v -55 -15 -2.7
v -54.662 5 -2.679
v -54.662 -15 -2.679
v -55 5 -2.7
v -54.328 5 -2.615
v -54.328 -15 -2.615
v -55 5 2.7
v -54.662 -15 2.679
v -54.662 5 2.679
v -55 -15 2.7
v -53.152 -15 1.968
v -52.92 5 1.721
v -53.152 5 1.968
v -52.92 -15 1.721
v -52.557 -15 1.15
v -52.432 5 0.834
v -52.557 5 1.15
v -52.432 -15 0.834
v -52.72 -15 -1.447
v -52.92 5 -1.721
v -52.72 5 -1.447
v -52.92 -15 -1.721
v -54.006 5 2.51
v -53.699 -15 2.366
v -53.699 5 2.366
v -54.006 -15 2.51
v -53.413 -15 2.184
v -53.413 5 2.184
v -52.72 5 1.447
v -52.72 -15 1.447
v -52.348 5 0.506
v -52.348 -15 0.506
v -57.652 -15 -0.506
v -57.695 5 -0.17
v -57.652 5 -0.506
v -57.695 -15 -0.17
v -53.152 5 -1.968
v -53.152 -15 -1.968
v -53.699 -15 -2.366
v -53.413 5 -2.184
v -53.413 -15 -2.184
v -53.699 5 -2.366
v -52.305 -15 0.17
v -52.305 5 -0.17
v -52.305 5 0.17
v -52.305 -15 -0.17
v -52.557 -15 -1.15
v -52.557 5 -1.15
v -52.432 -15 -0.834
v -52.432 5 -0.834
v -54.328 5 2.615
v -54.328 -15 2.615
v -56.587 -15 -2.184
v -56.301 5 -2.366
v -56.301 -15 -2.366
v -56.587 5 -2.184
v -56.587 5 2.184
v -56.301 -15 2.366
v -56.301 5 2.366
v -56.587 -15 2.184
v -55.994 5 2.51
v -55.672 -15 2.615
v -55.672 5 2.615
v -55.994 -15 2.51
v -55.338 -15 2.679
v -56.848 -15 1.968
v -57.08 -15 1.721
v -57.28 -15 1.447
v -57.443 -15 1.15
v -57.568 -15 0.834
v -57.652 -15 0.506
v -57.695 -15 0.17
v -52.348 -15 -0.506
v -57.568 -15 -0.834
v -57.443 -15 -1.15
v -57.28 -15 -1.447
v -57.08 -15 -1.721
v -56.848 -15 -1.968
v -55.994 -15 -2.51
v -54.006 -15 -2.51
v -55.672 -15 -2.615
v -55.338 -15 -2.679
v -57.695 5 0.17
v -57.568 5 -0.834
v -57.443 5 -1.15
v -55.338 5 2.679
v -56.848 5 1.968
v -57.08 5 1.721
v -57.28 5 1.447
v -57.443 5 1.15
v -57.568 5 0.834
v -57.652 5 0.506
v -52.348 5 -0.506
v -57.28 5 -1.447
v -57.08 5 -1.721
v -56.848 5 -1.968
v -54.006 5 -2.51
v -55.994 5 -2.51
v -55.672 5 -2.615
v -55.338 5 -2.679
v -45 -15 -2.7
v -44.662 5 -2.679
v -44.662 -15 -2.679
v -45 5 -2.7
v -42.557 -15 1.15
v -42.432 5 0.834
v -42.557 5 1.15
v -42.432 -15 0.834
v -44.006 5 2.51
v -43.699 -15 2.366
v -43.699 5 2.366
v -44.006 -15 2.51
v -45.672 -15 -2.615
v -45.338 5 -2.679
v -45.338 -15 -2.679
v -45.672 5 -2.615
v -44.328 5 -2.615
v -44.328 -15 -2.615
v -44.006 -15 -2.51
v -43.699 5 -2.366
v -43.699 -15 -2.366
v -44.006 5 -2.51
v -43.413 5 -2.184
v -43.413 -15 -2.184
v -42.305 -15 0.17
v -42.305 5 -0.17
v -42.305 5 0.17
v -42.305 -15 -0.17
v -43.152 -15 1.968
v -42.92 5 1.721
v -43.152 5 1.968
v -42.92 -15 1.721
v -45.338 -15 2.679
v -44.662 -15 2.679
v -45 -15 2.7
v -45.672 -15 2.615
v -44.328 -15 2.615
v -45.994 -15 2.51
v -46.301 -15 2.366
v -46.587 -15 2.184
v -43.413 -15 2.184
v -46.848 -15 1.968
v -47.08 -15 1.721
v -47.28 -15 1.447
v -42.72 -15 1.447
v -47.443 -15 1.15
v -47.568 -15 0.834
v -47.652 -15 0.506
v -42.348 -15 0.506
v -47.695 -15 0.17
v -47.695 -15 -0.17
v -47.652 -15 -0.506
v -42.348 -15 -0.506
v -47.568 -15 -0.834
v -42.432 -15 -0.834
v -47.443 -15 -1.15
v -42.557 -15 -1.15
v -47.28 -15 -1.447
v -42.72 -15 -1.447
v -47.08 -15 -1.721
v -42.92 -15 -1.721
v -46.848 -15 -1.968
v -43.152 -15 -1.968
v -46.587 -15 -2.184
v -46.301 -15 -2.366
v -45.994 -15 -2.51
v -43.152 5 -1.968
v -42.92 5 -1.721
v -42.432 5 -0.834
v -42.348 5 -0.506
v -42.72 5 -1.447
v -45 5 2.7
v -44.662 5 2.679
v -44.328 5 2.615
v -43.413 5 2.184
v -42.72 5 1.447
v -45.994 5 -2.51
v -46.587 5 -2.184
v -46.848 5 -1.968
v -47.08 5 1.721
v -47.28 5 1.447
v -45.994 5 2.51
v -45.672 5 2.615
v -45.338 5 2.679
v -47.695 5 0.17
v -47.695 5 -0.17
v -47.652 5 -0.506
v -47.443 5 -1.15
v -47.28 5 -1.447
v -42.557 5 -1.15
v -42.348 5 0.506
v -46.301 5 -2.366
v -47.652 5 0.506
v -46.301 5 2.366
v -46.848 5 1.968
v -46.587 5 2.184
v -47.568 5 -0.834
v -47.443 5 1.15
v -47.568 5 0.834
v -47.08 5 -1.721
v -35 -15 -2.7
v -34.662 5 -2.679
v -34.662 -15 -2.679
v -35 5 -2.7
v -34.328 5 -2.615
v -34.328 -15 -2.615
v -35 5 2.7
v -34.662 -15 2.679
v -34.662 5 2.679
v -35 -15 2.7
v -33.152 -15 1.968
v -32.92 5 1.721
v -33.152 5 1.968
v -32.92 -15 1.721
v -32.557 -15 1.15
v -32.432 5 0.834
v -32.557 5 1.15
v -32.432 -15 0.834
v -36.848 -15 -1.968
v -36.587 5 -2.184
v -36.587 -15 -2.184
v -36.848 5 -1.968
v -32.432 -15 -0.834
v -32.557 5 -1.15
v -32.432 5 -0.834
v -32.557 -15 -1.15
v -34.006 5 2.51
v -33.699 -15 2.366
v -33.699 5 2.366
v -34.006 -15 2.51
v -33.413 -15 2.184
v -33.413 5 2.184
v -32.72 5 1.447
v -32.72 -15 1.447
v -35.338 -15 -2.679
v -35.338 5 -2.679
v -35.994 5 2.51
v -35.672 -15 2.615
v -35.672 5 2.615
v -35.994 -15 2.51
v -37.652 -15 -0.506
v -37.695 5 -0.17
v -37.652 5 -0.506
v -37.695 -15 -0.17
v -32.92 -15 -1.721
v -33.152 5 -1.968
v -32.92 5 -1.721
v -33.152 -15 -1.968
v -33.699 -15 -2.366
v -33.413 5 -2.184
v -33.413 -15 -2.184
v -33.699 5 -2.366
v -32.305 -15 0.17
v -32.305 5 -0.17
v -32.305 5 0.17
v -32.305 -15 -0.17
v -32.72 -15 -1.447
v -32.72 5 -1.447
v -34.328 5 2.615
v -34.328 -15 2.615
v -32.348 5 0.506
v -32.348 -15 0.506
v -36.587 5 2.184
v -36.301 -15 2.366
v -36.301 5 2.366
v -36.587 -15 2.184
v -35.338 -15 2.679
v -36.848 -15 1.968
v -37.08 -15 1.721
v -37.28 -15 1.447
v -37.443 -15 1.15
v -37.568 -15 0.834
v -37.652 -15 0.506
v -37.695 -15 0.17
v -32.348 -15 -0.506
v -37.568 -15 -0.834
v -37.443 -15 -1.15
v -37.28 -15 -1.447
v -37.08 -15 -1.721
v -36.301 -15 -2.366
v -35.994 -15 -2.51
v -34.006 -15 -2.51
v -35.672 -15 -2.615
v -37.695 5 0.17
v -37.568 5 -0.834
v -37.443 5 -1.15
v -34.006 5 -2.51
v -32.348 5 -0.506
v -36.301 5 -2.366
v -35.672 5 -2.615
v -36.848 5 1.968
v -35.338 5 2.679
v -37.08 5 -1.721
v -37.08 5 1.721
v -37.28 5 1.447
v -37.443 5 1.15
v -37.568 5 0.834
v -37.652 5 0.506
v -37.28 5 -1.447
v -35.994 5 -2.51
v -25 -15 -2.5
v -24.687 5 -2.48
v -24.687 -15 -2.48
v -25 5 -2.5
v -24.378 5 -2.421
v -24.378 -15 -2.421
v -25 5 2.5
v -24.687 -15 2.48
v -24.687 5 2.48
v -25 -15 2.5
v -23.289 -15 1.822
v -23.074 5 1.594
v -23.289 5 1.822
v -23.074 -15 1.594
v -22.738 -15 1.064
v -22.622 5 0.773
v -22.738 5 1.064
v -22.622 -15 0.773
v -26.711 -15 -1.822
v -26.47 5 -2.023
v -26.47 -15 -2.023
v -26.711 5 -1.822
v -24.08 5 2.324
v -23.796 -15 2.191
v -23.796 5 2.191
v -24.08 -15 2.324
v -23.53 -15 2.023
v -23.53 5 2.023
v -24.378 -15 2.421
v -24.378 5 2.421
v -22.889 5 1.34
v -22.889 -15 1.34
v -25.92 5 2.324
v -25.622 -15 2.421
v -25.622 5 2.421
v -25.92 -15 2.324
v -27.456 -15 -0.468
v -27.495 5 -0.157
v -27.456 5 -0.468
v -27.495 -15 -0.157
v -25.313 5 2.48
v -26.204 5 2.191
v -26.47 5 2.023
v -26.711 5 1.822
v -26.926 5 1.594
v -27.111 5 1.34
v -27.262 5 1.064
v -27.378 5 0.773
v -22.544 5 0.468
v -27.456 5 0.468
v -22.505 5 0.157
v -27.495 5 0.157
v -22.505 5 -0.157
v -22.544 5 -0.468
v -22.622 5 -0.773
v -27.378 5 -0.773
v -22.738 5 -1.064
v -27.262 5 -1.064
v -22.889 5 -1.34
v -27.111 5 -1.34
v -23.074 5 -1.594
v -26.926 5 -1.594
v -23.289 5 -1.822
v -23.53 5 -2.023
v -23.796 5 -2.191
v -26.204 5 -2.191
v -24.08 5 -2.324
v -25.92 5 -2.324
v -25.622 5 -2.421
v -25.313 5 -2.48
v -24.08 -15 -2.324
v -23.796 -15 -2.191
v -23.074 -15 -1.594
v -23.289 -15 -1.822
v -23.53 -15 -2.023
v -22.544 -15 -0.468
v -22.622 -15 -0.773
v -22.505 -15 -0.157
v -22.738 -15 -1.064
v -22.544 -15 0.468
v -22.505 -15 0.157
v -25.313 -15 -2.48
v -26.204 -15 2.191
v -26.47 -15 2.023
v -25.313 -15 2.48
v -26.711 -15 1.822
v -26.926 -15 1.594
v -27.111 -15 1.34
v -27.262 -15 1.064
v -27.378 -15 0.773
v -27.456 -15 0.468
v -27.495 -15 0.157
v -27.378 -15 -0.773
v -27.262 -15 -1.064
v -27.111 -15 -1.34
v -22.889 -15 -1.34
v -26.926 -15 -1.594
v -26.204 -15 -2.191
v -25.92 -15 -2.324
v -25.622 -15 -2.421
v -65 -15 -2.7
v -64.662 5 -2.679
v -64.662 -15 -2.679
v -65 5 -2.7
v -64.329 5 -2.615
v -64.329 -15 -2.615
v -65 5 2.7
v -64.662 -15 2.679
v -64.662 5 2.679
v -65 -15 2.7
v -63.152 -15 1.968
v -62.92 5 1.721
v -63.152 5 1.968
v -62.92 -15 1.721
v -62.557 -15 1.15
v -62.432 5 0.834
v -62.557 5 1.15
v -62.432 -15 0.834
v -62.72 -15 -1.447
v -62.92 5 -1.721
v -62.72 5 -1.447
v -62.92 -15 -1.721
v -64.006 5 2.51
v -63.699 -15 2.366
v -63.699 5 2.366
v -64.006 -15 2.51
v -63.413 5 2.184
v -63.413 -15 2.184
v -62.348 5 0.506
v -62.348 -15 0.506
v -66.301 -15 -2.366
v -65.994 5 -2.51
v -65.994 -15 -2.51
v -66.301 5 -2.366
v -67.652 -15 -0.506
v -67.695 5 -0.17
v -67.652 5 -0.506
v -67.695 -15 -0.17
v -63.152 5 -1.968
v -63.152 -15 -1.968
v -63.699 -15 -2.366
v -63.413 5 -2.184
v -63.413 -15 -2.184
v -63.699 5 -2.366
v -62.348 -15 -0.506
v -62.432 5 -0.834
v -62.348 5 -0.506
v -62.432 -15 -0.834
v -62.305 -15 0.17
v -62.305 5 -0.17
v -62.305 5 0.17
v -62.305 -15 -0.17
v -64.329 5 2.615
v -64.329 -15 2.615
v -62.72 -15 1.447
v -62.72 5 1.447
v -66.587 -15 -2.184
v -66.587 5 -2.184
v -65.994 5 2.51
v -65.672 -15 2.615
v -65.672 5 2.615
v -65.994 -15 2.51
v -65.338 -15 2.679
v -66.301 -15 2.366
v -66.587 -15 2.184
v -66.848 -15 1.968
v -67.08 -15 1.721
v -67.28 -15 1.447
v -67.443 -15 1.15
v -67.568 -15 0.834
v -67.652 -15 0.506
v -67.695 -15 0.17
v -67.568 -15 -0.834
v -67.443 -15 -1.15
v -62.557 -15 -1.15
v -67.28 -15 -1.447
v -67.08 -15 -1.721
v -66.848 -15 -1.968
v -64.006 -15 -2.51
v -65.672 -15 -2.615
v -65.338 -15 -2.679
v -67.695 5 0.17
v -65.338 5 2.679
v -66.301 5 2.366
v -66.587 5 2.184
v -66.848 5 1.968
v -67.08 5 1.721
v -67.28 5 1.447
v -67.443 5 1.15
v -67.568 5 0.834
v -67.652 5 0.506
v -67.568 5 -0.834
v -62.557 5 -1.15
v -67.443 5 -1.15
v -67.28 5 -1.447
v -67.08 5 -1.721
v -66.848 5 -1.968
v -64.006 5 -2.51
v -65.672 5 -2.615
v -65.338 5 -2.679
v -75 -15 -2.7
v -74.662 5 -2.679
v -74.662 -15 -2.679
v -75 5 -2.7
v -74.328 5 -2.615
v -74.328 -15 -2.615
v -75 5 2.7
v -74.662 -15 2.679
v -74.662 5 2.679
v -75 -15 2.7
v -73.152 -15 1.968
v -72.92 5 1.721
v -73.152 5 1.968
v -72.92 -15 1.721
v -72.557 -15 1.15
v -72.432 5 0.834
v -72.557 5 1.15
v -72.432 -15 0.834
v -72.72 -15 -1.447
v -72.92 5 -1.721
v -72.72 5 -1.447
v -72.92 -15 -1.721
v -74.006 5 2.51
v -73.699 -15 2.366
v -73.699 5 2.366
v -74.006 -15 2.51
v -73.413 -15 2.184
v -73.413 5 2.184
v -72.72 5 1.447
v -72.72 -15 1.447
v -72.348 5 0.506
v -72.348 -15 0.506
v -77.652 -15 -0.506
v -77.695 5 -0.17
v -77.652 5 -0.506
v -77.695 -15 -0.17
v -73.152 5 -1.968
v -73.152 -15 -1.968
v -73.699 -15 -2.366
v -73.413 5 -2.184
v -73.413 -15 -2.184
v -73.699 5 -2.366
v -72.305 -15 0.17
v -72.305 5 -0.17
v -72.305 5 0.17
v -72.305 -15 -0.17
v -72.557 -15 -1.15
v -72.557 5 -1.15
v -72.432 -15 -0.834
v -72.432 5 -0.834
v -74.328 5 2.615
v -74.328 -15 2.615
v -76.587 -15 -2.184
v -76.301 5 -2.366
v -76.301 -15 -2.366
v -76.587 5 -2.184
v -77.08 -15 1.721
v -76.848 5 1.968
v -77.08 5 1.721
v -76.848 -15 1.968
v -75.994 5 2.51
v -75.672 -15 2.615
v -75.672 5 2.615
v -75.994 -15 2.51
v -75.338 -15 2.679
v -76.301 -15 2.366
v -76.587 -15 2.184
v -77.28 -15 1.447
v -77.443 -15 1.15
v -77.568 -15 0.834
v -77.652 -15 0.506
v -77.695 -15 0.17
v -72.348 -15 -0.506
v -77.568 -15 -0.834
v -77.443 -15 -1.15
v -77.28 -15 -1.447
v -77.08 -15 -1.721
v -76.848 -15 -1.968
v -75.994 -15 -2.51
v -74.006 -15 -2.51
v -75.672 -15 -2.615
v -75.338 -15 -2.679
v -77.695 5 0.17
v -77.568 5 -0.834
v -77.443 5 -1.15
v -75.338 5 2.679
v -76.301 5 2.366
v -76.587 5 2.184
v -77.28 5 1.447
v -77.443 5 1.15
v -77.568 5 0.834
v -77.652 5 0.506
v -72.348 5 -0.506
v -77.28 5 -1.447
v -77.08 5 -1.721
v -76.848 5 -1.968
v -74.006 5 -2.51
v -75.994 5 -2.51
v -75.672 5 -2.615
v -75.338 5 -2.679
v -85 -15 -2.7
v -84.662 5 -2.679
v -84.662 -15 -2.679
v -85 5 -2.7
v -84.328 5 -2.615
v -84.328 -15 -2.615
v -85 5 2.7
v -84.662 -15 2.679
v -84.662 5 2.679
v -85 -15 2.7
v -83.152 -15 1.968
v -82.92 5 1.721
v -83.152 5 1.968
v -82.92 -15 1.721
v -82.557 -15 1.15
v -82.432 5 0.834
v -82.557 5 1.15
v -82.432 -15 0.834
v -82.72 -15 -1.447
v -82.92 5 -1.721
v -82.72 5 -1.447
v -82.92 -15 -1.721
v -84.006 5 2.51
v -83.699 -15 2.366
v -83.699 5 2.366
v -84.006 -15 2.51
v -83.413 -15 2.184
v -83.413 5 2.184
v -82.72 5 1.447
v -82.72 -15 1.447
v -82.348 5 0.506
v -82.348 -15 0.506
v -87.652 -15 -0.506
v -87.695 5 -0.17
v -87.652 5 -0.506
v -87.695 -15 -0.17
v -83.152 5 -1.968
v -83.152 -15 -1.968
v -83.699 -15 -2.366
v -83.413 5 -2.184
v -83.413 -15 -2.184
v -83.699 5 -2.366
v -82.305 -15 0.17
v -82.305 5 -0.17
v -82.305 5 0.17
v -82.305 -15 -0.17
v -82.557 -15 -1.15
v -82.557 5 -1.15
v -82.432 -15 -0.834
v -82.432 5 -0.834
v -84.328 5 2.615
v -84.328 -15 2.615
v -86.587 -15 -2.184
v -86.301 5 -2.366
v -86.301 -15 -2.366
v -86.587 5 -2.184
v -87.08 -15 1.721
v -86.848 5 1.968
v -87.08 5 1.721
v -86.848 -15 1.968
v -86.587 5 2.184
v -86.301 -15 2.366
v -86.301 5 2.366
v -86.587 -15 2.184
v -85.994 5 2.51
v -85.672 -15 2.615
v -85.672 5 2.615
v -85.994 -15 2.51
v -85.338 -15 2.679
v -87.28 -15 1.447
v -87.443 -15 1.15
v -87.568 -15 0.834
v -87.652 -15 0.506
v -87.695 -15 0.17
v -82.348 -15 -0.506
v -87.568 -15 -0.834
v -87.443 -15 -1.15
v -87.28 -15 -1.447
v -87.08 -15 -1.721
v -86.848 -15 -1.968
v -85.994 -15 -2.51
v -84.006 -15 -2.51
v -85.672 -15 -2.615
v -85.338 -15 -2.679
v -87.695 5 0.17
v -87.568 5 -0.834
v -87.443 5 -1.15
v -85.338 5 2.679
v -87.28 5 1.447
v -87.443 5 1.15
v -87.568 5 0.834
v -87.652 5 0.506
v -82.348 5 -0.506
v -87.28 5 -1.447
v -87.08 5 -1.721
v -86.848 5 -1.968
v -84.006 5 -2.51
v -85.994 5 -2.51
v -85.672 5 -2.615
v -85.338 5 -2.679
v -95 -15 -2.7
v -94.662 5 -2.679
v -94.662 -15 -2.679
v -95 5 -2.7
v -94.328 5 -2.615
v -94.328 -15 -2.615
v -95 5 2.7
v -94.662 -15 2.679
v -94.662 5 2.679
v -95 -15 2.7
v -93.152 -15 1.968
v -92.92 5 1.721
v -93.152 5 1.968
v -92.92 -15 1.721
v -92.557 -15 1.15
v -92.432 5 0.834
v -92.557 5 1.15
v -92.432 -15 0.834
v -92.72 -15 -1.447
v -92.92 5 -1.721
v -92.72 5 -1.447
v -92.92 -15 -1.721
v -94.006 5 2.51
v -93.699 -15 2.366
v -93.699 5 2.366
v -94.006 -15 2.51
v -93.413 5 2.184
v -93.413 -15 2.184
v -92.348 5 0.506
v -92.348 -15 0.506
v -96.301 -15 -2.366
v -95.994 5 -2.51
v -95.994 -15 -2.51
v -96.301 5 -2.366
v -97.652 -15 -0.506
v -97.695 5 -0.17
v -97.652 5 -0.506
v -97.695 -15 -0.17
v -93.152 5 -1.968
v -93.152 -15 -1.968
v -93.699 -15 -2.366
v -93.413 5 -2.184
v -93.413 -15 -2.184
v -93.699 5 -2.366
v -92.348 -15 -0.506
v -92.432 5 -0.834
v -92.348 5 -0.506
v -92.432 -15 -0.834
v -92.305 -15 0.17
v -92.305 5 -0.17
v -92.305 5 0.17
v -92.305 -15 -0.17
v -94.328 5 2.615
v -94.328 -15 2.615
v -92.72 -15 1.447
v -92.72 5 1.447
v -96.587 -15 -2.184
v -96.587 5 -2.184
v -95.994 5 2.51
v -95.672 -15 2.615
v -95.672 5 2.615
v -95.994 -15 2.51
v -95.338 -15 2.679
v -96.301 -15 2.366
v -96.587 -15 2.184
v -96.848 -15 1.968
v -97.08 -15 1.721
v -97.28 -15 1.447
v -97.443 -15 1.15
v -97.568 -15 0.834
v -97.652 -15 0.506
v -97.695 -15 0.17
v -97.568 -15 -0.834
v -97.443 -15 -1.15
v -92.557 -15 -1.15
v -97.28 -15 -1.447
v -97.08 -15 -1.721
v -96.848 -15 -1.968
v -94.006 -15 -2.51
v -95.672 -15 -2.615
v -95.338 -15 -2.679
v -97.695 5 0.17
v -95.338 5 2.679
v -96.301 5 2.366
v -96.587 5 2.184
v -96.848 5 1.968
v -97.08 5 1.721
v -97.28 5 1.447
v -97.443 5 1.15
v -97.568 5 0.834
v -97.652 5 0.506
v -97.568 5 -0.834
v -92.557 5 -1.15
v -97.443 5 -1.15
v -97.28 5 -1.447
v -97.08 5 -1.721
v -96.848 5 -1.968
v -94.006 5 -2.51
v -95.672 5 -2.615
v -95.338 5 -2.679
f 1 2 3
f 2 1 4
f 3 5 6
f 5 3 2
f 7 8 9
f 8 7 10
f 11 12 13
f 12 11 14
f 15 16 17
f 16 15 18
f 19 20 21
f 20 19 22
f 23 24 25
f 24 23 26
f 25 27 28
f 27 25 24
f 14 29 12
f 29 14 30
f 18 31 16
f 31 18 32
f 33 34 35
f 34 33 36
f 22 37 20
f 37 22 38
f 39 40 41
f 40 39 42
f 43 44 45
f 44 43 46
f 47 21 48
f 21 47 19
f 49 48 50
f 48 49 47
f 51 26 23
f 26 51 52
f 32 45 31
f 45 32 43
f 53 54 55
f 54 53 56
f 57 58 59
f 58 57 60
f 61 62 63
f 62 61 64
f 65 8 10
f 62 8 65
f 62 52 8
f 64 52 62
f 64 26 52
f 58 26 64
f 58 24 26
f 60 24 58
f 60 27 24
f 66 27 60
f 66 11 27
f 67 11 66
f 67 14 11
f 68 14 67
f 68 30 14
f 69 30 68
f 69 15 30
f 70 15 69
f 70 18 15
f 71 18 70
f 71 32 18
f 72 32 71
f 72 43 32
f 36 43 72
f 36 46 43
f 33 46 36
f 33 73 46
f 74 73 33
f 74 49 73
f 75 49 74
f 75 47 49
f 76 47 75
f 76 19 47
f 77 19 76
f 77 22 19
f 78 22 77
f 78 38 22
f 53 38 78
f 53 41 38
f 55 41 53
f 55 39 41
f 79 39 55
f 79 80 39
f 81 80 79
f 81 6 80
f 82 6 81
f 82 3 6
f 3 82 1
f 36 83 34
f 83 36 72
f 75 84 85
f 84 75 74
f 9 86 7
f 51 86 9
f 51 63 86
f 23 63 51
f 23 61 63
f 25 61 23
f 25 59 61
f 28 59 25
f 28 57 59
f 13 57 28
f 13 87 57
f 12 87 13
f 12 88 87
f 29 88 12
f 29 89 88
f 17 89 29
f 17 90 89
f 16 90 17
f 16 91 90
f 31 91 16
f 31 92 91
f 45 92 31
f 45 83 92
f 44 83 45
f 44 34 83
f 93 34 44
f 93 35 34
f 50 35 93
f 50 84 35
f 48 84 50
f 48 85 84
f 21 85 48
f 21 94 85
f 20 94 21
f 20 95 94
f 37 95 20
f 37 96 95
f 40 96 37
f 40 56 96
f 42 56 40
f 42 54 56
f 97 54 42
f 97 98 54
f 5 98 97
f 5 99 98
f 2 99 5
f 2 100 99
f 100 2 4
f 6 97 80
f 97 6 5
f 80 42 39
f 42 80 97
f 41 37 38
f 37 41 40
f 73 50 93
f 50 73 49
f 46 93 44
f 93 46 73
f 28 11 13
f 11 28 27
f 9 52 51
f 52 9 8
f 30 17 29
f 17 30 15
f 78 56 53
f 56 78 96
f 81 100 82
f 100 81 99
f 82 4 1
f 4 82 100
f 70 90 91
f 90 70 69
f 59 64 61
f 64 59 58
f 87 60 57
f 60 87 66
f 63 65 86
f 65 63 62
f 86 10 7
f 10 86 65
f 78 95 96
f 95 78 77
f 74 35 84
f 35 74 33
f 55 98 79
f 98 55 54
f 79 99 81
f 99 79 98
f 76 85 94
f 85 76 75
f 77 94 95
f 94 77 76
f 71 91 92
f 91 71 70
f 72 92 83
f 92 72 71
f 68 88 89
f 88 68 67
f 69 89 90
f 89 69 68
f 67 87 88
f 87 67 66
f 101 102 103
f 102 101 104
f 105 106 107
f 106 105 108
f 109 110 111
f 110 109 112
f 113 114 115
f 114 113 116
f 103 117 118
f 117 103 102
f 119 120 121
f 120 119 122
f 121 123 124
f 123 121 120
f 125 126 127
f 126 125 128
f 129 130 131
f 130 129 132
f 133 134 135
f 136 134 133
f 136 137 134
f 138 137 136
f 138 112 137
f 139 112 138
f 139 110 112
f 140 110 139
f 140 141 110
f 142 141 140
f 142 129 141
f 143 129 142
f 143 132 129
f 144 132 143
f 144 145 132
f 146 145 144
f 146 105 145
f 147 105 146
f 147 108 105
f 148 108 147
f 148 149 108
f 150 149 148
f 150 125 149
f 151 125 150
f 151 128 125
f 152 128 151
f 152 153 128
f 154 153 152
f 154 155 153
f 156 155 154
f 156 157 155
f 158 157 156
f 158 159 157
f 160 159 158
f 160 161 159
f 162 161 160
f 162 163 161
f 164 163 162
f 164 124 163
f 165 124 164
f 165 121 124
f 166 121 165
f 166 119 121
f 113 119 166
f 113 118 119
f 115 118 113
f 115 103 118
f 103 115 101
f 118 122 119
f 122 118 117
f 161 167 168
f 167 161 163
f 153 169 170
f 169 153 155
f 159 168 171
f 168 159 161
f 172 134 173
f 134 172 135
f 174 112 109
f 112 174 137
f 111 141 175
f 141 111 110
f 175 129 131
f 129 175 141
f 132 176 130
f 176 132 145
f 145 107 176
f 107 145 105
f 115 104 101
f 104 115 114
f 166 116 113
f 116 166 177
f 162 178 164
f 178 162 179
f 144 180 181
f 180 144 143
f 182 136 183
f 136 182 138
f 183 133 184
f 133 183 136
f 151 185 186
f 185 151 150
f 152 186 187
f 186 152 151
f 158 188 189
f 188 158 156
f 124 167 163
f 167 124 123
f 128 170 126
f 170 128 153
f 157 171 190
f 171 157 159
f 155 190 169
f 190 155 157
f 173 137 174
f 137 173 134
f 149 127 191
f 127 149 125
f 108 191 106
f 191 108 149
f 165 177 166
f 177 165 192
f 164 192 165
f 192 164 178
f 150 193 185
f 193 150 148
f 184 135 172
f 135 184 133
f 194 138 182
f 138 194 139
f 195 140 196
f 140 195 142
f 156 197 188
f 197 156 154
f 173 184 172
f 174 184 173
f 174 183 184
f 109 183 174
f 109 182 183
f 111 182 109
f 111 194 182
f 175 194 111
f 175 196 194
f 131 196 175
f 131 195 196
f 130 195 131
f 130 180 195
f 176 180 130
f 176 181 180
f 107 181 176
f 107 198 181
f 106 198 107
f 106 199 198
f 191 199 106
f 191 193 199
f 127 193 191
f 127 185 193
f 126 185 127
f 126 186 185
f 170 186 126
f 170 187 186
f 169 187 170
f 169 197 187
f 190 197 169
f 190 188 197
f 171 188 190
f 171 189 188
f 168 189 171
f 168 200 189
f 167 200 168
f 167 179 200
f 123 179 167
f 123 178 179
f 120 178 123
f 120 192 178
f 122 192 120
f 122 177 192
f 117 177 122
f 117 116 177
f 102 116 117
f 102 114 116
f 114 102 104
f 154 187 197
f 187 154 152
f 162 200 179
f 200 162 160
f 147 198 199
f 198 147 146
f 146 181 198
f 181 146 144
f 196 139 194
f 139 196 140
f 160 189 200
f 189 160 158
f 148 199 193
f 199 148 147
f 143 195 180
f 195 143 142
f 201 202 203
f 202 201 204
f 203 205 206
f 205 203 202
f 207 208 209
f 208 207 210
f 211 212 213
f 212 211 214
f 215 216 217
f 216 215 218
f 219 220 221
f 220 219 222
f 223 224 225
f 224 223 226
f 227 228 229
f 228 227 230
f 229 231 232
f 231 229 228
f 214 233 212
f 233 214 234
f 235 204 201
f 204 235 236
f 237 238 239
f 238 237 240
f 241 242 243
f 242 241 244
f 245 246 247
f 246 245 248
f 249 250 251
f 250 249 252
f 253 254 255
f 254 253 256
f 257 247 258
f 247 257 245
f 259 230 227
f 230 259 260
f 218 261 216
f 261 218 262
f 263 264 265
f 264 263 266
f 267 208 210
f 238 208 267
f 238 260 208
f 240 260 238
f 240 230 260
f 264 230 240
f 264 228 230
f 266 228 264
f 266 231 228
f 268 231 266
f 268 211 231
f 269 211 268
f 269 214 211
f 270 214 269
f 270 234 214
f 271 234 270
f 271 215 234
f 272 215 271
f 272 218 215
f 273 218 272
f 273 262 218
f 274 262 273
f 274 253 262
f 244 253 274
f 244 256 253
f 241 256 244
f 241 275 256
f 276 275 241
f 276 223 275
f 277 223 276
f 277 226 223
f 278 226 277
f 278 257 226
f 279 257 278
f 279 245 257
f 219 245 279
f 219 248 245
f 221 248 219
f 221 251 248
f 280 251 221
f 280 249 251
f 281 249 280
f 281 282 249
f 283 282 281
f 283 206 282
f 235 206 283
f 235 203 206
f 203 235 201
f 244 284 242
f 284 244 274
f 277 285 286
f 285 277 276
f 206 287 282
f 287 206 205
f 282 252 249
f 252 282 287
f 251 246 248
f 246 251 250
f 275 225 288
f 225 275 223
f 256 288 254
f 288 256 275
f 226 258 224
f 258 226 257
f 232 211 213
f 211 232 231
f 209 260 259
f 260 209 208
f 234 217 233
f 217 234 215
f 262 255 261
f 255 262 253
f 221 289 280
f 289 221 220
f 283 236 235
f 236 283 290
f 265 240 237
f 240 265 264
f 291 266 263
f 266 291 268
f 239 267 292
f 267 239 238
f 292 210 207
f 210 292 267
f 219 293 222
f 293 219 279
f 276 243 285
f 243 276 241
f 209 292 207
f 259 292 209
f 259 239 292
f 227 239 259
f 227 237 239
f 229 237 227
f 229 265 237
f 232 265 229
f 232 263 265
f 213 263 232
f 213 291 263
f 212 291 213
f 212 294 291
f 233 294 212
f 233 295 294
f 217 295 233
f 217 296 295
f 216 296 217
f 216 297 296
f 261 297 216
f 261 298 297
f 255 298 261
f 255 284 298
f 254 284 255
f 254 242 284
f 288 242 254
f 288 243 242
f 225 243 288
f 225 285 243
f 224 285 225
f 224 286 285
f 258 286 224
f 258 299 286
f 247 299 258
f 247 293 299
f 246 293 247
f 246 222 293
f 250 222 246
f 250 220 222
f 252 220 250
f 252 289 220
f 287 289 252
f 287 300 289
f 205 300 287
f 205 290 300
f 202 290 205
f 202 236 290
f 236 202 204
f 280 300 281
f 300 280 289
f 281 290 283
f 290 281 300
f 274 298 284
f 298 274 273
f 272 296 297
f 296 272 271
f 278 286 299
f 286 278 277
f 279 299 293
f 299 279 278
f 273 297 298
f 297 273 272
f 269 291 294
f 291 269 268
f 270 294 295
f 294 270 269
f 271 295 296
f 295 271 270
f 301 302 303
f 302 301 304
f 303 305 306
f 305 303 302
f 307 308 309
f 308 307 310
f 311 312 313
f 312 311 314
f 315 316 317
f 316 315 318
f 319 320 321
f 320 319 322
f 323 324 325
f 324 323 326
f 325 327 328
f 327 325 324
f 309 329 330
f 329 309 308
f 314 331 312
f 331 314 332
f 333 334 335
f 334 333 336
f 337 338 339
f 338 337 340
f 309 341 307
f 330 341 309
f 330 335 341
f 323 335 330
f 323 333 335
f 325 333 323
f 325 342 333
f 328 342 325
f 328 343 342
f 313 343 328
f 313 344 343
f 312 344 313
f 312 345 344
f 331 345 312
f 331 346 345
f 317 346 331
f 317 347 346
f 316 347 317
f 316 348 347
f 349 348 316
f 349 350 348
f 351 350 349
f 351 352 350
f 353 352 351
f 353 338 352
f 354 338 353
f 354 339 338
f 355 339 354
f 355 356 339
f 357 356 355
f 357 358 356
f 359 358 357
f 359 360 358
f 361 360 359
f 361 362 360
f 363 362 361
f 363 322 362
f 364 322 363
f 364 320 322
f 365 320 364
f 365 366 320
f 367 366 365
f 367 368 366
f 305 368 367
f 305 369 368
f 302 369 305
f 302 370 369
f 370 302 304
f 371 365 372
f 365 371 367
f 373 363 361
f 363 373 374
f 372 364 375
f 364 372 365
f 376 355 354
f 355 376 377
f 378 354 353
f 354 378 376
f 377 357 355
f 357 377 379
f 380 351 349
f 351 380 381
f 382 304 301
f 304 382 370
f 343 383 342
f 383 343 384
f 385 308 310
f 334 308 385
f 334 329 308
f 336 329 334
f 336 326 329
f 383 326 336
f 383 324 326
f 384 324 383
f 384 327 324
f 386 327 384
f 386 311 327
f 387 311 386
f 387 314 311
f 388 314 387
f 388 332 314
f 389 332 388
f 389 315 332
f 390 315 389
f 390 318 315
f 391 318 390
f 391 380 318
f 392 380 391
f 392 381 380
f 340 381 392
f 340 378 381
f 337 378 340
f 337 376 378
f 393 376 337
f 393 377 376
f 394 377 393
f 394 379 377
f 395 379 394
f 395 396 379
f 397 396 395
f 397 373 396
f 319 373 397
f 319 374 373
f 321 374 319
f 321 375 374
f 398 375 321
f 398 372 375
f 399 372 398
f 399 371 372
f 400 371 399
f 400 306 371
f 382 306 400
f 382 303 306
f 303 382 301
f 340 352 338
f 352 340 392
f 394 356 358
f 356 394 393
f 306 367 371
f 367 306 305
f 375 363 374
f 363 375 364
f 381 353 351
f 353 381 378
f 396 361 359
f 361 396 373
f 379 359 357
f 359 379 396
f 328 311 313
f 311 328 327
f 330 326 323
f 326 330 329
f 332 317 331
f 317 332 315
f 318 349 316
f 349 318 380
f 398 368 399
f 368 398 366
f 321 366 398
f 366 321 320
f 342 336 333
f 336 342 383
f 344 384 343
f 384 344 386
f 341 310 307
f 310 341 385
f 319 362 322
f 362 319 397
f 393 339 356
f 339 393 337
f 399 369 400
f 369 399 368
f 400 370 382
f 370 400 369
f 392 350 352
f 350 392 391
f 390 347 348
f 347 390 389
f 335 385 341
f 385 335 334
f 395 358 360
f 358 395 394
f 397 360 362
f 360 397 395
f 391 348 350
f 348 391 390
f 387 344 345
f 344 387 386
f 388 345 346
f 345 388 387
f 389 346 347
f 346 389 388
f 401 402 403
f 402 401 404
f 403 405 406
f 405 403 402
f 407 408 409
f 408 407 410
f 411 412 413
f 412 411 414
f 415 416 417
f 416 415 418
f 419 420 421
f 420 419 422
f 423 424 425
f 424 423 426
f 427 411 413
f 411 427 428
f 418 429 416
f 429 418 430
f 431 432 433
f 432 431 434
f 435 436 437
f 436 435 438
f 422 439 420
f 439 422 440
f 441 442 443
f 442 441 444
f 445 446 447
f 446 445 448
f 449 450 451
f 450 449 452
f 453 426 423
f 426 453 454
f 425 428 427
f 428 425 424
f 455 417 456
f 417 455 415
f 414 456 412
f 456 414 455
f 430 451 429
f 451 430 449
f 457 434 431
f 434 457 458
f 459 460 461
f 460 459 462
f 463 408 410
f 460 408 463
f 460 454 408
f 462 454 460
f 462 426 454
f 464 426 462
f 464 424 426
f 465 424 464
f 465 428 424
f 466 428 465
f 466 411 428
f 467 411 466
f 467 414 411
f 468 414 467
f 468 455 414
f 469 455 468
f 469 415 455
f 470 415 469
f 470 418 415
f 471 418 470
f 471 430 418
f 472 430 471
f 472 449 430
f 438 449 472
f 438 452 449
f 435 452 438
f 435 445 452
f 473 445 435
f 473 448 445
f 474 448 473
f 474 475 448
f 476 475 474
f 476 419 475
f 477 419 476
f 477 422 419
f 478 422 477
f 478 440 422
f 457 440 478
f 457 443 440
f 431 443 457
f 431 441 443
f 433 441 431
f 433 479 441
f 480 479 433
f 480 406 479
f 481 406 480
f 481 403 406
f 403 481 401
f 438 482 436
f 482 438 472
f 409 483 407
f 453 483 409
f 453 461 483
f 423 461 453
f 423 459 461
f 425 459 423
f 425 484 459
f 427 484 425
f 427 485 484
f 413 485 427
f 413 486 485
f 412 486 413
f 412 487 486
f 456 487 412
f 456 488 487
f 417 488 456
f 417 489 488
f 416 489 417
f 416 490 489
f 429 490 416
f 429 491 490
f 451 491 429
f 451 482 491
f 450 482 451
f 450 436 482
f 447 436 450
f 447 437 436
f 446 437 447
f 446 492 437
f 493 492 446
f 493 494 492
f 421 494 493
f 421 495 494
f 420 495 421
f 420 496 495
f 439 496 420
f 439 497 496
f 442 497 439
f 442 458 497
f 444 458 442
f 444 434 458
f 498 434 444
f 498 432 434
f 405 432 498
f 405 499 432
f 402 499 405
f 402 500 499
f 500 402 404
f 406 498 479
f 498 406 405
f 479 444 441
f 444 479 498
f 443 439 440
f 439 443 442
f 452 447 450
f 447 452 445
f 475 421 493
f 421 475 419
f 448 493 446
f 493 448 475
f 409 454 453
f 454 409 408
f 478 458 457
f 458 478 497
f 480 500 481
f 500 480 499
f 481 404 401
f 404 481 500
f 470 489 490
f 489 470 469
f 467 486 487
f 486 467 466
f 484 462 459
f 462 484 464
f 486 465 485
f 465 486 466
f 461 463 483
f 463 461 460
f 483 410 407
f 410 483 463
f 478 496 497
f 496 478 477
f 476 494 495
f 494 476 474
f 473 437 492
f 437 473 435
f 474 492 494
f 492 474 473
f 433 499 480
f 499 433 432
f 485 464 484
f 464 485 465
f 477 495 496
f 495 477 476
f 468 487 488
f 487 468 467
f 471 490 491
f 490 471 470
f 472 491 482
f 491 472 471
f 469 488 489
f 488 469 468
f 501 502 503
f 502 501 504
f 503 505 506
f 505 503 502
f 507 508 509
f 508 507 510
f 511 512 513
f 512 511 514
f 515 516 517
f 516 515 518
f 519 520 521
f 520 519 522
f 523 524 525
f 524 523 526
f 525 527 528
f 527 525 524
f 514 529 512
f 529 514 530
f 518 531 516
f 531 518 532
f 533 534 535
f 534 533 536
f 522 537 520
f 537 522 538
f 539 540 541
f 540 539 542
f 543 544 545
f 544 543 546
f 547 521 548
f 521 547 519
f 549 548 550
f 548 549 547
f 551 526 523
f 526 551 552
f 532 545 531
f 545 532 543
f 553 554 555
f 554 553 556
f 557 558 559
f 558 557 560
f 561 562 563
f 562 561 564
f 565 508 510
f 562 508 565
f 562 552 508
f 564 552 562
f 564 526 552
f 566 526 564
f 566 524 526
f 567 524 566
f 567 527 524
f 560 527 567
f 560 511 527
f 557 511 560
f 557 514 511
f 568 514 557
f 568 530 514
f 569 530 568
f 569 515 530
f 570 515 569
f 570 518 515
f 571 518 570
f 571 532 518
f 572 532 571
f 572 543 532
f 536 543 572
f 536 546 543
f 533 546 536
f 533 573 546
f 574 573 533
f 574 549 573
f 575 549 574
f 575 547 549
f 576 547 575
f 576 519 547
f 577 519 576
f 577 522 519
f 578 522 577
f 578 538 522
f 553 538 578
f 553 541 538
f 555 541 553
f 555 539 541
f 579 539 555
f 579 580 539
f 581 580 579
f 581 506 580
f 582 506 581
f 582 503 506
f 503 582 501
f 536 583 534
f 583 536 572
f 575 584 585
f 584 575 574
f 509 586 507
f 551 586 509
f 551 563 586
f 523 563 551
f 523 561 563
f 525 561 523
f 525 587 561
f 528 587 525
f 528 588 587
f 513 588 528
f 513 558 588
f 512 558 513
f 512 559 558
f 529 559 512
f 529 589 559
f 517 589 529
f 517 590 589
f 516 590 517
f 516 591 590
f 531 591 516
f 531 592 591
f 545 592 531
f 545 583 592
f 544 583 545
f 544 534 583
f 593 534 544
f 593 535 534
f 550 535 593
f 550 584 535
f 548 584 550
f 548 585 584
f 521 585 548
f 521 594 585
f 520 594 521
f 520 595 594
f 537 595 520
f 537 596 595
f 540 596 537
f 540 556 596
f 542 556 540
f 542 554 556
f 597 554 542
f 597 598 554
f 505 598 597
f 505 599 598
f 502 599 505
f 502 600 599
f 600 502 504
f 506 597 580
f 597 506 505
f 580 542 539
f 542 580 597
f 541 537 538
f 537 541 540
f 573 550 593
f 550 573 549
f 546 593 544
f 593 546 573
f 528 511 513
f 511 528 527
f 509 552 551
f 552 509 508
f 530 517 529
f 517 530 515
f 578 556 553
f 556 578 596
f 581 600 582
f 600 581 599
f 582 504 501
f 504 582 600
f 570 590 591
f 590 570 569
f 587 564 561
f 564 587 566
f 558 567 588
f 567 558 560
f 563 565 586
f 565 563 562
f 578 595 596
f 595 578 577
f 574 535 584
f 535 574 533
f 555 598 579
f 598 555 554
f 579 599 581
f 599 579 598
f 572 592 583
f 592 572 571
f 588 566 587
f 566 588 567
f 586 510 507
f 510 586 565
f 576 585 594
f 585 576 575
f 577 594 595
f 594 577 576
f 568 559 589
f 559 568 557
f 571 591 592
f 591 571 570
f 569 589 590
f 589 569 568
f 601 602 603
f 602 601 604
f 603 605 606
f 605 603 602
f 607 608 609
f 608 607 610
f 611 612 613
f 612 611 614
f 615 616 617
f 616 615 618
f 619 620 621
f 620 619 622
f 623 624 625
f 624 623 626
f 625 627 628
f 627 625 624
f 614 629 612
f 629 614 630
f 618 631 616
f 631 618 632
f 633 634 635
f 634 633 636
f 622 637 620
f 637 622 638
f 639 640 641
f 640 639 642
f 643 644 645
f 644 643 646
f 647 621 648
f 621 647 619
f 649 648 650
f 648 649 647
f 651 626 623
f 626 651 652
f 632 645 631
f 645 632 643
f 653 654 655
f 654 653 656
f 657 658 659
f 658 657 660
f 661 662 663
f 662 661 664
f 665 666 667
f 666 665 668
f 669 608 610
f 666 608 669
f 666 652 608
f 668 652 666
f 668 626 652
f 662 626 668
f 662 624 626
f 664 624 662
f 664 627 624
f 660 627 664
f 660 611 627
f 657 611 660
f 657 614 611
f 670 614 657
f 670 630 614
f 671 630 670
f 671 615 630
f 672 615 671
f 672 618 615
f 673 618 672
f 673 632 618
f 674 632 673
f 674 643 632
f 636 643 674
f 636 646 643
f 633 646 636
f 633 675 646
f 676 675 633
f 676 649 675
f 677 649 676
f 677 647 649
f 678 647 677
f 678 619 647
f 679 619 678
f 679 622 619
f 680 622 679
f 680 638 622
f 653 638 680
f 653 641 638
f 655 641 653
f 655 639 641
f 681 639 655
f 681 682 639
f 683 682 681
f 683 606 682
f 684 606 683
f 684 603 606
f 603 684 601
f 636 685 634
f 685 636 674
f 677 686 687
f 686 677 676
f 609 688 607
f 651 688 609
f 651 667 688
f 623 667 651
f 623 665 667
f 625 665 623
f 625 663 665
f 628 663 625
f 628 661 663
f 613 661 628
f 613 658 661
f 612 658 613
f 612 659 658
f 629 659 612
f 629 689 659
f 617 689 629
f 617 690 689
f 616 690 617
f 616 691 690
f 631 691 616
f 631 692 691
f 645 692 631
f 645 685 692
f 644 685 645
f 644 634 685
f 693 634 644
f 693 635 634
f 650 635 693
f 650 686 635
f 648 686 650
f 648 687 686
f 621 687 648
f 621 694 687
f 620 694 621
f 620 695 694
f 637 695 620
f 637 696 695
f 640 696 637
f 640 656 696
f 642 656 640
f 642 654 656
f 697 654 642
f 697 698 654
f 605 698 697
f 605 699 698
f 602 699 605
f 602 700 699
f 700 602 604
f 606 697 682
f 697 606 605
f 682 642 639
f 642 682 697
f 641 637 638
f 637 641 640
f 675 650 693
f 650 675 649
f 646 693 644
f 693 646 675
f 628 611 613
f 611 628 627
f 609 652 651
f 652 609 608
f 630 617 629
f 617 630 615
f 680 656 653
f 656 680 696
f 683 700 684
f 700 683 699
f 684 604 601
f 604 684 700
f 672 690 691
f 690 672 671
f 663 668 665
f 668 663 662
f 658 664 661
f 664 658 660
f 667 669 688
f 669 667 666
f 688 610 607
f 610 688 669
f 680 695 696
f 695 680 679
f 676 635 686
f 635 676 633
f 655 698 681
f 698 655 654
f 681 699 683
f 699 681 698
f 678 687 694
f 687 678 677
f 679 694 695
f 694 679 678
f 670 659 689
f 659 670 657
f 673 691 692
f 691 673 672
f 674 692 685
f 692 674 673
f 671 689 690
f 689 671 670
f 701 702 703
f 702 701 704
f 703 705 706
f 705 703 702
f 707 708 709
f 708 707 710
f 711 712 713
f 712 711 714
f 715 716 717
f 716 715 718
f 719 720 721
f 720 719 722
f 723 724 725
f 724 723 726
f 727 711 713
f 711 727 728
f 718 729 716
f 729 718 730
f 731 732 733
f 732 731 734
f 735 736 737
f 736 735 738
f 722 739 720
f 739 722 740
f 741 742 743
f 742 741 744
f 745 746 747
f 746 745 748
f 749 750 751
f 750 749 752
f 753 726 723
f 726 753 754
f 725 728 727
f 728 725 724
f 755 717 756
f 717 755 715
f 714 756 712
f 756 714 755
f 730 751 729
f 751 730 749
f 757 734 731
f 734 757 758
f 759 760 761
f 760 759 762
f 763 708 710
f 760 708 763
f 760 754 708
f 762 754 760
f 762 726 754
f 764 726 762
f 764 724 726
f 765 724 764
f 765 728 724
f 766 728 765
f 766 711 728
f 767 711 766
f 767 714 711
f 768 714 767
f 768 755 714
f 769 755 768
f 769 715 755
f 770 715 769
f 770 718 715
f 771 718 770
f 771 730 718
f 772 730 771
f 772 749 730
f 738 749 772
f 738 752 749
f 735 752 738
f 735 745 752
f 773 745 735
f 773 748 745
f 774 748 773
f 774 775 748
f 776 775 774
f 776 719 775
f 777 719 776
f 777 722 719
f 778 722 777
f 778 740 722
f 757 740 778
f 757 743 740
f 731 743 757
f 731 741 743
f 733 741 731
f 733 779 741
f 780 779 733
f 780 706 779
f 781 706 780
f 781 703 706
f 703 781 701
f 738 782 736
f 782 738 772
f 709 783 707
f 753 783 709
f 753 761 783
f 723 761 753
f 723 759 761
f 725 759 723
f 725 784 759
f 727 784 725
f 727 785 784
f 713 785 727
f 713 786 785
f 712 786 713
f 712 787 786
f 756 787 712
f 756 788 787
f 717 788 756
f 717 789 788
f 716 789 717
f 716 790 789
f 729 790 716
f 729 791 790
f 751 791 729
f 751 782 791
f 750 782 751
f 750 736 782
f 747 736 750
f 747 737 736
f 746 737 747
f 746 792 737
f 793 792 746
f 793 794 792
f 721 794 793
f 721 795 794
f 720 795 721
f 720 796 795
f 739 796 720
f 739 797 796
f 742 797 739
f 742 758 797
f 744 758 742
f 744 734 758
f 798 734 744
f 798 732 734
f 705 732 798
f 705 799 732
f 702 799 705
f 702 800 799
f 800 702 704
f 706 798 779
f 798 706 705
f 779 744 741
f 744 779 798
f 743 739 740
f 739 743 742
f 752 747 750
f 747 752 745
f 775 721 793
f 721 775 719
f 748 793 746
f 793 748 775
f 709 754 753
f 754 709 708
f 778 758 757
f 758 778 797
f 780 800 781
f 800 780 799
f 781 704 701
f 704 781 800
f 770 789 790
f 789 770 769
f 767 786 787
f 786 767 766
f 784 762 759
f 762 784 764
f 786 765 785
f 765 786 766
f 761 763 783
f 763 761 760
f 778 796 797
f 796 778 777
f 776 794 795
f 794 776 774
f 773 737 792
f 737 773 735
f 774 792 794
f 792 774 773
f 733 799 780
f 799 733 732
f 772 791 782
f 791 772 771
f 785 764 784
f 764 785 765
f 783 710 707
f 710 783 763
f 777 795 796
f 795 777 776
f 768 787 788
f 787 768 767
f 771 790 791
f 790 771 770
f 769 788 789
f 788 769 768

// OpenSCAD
$fn = 50;

#translate([-55,5,-0])rotate([105,90,15])cylinder(20,2.7,2.7);
    
    #translate([-45,5,-0])rotate([105,90,15])cylinder(20,2.7,2.7);
    
    #translate([-35,5,-0])rotate([105,90,15])cylinder(20,2.7,2.7);
    
    #translate([-25,5,-0])rotate([105,90,15])cylinder(20,2.5,2.5);
    
    #translate([-65,5,-0])rotate([105,90,15])cylinder(20,2.7,2.7);
    
    #translate([-75,5,-0])rotate([105,90,15])cylinder(20,2.7,2.7);
    
    #translate([-85,5,-0])rotate([105,90,15])cylinder(20,2.7,2.7);
    
    #translate([-95,5,-0])rotate([105,90,15])cylinder(20,2.7,2.7);
    
